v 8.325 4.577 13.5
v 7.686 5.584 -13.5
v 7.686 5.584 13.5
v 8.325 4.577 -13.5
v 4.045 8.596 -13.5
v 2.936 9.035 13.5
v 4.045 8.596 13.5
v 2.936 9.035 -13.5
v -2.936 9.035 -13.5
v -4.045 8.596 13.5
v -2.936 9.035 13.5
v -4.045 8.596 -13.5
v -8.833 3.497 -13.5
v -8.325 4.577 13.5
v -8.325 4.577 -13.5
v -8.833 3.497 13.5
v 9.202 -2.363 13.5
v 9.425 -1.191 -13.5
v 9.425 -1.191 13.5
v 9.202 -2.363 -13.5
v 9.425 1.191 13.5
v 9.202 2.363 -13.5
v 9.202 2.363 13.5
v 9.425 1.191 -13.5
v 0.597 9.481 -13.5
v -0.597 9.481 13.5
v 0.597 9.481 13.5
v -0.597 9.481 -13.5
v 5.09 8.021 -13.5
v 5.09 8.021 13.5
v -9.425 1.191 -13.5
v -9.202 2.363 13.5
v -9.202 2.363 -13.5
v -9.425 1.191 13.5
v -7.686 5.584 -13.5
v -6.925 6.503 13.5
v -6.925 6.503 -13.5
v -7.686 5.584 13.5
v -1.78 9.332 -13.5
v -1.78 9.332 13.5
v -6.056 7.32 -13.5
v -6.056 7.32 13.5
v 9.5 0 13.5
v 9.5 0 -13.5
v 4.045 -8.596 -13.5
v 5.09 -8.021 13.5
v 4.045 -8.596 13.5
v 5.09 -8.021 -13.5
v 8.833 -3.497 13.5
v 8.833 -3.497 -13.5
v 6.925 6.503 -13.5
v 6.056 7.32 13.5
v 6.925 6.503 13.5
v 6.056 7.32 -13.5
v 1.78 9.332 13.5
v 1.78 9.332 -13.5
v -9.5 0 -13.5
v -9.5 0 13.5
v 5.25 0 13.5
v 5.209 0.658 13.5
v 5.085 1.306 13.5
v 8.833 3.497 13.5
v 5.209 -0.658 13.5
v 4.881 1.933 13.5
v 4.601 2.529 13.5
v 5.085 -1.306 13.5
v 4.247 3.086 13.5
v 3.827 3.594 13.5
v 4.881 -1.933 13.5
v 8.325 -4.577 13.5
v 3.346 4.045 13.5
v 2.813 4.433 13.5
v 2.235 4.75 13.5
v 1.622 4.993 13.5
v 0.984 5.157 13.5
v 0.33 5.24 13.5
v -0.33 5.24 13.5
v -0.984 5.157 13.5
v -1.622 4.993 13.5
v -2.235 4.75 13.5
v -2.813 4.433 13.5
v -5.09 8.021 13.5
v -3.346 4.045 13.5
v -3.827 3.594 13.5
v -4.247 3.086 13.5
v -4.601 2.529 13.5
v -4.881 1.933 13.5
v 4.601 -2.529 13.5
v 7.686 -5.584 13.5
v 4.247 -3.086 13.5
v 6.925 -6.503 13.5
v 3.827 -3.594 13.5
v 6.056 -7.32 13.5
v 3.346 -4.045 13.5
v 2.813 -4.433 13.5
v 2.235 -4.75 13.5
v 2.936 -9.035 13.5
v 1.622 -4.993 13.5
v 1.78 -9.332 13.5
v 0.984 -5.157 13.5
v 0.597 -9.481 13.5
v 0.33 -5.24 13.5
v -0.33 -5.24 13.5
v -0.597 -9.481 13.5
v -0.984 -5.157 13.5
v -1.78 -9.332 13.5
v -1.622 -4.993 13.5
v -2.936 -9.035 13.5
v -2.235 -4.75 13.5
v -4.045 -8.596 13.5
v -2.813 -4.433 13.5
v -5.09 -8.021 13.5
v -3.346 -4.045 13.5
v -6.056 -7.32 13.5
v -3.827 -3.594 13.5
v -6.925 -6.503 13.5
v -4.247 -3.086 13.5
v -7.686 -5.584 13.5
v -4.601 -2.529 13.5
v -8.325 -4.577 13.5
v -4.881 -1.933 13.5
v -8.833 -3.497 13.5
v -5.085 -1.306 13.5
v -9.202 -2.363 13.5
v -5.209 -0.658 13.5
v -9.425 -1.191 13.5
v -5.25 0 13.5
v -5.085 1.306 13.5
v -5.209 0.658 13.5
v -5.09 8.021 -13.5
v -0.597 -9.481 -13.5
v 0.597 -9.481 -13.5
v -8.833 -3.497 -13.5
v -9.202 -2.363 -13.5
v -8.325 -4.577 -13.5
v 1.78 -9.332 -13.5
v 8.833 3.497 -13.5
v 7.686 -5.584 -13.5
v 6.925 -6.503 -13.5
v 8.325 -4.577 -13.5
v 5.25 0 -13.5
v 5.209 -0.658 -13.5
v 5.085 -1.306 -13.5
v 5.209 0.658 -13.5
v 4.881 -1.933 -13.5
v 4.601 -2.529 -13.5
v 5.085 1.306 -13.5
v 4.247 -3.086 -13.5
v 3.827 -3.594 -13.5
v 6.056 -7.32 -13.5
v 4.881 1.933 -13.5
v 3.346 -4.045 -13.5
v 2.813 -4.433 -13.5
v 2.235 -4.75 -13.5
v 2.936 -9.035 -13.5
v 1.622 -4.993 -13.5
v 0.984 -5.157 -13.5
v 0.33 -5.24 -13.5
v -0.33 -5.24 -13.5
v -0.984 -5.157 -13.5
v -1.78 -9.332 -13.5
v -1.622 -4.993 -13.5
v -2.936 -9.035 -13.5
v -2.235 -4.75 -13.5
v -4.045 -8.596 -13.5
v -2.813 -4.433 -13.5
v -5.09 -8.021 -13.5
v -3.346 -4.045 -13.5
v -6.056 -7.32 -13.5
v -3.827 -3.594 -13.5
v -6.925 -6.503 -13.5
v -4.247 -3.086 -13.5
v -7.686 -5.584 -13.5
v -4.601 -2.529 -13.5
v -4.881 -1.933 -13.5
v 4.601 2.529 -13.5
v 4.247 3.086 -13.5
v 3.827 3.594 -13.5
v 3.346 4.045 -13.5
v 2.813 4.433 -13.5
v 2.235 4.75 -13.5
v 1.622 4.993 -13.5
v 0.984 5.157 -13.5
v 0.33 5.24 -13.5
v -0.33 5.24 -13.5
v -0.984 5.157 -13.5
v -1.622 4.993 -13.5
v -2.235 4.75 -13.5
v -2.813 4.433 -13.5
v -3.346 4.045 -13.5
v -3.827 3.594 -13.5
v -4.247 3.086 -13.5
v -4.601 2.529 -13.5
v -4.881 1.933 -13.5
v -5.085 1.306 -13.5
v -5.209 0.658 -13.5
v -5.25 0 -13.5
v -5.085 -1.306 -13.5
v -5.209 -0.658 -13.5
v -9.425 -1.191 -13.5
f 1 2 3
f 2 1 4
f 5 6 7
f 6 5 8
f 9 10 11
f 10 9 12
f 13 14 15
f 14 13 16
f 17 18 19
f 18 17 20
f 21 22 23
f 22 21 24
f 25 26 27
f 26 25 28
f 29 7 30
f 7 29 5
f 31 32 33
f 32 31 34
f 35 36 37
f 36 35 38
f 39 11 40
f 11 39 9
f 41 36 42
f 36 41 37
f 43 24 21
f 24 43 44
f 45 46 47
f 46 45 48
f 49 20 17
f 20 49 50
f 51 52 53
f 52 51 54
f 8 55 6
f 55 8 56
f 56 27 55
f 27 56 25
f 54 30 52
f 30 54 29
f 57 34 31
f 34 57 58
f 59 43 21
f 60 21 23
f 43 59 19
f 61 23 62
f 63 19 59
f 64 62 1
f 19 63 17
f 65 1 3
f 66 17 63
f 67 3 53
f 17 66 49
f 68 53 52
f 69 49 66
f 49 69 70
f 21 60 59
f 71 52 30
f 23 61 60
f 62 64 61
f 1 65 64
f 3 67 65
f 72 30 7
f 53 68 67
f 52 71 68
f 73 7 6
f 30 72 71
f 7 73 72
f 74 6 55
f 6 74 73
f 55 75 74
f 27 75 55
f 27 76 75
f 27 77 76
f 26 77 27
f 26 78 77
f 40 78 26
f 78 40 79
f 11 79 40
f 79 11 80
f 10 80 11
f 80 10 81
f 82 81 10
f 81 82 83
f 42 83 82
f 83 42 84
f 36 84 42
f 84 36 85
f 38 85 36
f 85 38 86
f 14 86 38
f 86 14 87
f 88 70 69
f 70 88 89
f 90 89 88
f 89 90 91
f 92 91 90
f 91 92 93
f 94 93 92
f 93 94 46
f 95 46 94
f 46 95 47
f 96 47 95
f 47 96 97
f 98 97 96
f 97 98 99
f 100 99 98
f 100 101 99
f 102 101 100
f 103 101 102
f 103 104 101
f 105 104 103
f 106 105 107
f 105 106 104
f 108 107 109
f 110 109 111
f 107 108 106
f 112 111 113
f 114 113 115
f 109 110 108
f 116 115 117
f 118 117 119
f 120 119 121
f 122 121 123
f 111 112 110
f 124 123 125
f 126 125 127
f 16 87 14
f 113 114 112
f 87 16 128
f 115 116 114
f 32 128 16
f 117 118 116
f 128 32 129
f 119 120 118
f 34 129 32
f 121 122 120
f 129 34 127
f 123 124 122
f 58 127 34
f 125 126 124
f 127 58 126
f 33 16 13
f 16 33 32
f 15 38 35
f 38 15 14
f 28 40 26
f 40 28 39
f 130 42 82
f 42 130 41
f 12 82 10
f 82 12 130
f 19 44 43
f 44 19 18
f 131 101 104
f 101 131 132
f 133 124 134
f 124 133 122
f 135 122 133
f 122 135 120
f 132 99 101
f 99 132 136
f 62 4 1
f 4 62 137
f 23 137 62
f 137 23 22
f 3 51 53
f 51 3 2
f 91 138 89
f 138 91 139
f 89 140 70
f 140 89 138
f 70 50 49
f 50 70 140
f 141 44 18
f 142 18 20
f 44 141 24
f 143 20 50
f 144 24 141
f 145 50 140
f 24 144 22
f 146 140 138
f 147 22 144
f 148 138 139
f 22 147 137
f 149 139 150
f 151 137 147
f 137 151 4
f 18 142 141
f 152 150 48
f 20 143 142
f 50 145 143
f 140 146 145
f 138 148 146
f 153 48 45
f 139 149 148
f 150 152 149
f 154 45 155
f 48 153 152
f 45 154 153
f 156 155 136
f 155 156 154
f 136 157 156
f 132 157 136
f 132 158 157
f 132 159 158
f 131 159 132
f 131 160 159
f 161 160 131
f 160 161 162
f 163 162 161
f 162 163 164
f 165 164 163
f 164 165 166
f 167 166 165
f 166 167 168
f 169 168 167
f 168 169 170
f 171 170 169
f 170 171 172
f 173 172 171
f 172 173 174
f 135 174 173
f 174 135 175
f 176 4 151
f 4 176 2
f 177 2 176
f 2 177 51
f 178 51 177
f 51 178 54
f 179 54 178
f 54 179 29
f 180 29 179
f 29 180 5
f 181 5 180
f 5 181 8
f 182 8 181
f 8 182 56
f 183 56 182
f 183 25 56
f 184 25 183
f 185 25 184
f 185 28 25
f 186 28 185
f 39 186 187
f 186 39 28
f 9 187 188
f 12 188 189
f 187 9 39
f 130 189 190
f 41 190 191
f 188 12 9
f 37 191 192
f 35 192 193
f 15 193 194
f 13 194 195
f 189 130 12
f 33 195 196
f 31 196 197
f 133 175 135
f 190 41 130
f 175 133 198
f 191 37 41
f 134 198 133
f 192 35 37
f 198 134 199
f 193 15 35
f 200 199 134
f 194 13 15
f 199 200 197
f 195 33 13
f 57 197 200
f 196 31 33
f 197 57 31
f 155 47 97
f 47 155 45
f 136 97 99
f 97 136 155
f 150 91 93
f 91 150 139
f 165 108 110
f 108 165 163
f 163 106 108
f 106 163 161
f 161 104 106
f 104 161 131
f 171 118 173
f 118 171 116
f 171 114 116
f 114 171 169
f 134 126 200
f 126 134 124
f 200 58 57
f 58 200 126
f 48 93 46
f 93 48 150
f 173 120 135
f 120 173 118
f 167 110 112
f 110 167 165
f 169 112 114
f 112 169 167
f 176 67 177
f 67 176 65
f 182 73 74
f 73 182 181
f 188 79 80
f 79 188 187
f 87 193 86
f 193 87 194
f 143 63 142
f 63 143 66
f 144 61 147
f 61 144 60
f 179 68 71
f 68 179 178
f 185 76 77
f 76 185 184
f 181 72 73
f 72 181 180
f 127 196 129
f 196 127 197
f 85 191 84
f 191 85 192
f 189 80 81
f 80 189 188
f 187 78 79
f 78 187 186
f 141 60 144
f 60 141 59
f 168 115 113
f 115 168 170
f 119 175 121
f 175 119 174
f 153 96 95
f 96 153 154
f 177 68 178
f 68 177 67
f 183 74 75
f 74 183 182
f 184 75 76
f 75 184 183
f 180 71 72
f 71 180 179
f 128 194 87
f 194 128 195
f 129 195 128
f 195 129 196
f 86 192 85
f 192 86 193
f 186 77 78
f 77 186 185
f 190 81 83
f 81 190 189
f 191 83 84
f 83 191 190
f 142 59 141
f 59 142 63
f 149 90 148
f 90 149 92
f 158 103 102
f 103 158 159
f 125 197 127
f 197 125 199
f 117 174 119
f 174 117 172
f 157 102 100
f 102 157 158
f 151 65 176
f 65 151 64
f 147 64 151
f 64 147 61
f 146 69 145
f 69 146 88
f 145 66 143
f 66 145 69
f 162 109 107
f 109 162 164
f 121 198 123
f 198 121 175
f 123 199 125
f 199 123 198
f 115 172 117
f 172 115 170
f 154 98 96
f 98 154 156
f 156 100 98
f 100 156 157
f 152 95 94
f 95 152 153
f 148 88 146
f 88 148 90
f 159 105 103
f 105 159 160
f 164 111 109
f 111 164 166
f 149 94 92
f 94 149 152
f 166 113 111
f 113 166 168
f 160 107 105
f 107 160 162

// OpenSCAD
$fn = 50;


difference() {
	union() {
		translate(v = [0, 0, -13.5000000000]) {
			cylinder(h = 27, r = 9.5000000000);
		}
	}
	union() {
		translate(v = [0, 0, -100.0000000000]) {
			cylinder(h = 200, r = 5.2500000000);
		}
	}
}
